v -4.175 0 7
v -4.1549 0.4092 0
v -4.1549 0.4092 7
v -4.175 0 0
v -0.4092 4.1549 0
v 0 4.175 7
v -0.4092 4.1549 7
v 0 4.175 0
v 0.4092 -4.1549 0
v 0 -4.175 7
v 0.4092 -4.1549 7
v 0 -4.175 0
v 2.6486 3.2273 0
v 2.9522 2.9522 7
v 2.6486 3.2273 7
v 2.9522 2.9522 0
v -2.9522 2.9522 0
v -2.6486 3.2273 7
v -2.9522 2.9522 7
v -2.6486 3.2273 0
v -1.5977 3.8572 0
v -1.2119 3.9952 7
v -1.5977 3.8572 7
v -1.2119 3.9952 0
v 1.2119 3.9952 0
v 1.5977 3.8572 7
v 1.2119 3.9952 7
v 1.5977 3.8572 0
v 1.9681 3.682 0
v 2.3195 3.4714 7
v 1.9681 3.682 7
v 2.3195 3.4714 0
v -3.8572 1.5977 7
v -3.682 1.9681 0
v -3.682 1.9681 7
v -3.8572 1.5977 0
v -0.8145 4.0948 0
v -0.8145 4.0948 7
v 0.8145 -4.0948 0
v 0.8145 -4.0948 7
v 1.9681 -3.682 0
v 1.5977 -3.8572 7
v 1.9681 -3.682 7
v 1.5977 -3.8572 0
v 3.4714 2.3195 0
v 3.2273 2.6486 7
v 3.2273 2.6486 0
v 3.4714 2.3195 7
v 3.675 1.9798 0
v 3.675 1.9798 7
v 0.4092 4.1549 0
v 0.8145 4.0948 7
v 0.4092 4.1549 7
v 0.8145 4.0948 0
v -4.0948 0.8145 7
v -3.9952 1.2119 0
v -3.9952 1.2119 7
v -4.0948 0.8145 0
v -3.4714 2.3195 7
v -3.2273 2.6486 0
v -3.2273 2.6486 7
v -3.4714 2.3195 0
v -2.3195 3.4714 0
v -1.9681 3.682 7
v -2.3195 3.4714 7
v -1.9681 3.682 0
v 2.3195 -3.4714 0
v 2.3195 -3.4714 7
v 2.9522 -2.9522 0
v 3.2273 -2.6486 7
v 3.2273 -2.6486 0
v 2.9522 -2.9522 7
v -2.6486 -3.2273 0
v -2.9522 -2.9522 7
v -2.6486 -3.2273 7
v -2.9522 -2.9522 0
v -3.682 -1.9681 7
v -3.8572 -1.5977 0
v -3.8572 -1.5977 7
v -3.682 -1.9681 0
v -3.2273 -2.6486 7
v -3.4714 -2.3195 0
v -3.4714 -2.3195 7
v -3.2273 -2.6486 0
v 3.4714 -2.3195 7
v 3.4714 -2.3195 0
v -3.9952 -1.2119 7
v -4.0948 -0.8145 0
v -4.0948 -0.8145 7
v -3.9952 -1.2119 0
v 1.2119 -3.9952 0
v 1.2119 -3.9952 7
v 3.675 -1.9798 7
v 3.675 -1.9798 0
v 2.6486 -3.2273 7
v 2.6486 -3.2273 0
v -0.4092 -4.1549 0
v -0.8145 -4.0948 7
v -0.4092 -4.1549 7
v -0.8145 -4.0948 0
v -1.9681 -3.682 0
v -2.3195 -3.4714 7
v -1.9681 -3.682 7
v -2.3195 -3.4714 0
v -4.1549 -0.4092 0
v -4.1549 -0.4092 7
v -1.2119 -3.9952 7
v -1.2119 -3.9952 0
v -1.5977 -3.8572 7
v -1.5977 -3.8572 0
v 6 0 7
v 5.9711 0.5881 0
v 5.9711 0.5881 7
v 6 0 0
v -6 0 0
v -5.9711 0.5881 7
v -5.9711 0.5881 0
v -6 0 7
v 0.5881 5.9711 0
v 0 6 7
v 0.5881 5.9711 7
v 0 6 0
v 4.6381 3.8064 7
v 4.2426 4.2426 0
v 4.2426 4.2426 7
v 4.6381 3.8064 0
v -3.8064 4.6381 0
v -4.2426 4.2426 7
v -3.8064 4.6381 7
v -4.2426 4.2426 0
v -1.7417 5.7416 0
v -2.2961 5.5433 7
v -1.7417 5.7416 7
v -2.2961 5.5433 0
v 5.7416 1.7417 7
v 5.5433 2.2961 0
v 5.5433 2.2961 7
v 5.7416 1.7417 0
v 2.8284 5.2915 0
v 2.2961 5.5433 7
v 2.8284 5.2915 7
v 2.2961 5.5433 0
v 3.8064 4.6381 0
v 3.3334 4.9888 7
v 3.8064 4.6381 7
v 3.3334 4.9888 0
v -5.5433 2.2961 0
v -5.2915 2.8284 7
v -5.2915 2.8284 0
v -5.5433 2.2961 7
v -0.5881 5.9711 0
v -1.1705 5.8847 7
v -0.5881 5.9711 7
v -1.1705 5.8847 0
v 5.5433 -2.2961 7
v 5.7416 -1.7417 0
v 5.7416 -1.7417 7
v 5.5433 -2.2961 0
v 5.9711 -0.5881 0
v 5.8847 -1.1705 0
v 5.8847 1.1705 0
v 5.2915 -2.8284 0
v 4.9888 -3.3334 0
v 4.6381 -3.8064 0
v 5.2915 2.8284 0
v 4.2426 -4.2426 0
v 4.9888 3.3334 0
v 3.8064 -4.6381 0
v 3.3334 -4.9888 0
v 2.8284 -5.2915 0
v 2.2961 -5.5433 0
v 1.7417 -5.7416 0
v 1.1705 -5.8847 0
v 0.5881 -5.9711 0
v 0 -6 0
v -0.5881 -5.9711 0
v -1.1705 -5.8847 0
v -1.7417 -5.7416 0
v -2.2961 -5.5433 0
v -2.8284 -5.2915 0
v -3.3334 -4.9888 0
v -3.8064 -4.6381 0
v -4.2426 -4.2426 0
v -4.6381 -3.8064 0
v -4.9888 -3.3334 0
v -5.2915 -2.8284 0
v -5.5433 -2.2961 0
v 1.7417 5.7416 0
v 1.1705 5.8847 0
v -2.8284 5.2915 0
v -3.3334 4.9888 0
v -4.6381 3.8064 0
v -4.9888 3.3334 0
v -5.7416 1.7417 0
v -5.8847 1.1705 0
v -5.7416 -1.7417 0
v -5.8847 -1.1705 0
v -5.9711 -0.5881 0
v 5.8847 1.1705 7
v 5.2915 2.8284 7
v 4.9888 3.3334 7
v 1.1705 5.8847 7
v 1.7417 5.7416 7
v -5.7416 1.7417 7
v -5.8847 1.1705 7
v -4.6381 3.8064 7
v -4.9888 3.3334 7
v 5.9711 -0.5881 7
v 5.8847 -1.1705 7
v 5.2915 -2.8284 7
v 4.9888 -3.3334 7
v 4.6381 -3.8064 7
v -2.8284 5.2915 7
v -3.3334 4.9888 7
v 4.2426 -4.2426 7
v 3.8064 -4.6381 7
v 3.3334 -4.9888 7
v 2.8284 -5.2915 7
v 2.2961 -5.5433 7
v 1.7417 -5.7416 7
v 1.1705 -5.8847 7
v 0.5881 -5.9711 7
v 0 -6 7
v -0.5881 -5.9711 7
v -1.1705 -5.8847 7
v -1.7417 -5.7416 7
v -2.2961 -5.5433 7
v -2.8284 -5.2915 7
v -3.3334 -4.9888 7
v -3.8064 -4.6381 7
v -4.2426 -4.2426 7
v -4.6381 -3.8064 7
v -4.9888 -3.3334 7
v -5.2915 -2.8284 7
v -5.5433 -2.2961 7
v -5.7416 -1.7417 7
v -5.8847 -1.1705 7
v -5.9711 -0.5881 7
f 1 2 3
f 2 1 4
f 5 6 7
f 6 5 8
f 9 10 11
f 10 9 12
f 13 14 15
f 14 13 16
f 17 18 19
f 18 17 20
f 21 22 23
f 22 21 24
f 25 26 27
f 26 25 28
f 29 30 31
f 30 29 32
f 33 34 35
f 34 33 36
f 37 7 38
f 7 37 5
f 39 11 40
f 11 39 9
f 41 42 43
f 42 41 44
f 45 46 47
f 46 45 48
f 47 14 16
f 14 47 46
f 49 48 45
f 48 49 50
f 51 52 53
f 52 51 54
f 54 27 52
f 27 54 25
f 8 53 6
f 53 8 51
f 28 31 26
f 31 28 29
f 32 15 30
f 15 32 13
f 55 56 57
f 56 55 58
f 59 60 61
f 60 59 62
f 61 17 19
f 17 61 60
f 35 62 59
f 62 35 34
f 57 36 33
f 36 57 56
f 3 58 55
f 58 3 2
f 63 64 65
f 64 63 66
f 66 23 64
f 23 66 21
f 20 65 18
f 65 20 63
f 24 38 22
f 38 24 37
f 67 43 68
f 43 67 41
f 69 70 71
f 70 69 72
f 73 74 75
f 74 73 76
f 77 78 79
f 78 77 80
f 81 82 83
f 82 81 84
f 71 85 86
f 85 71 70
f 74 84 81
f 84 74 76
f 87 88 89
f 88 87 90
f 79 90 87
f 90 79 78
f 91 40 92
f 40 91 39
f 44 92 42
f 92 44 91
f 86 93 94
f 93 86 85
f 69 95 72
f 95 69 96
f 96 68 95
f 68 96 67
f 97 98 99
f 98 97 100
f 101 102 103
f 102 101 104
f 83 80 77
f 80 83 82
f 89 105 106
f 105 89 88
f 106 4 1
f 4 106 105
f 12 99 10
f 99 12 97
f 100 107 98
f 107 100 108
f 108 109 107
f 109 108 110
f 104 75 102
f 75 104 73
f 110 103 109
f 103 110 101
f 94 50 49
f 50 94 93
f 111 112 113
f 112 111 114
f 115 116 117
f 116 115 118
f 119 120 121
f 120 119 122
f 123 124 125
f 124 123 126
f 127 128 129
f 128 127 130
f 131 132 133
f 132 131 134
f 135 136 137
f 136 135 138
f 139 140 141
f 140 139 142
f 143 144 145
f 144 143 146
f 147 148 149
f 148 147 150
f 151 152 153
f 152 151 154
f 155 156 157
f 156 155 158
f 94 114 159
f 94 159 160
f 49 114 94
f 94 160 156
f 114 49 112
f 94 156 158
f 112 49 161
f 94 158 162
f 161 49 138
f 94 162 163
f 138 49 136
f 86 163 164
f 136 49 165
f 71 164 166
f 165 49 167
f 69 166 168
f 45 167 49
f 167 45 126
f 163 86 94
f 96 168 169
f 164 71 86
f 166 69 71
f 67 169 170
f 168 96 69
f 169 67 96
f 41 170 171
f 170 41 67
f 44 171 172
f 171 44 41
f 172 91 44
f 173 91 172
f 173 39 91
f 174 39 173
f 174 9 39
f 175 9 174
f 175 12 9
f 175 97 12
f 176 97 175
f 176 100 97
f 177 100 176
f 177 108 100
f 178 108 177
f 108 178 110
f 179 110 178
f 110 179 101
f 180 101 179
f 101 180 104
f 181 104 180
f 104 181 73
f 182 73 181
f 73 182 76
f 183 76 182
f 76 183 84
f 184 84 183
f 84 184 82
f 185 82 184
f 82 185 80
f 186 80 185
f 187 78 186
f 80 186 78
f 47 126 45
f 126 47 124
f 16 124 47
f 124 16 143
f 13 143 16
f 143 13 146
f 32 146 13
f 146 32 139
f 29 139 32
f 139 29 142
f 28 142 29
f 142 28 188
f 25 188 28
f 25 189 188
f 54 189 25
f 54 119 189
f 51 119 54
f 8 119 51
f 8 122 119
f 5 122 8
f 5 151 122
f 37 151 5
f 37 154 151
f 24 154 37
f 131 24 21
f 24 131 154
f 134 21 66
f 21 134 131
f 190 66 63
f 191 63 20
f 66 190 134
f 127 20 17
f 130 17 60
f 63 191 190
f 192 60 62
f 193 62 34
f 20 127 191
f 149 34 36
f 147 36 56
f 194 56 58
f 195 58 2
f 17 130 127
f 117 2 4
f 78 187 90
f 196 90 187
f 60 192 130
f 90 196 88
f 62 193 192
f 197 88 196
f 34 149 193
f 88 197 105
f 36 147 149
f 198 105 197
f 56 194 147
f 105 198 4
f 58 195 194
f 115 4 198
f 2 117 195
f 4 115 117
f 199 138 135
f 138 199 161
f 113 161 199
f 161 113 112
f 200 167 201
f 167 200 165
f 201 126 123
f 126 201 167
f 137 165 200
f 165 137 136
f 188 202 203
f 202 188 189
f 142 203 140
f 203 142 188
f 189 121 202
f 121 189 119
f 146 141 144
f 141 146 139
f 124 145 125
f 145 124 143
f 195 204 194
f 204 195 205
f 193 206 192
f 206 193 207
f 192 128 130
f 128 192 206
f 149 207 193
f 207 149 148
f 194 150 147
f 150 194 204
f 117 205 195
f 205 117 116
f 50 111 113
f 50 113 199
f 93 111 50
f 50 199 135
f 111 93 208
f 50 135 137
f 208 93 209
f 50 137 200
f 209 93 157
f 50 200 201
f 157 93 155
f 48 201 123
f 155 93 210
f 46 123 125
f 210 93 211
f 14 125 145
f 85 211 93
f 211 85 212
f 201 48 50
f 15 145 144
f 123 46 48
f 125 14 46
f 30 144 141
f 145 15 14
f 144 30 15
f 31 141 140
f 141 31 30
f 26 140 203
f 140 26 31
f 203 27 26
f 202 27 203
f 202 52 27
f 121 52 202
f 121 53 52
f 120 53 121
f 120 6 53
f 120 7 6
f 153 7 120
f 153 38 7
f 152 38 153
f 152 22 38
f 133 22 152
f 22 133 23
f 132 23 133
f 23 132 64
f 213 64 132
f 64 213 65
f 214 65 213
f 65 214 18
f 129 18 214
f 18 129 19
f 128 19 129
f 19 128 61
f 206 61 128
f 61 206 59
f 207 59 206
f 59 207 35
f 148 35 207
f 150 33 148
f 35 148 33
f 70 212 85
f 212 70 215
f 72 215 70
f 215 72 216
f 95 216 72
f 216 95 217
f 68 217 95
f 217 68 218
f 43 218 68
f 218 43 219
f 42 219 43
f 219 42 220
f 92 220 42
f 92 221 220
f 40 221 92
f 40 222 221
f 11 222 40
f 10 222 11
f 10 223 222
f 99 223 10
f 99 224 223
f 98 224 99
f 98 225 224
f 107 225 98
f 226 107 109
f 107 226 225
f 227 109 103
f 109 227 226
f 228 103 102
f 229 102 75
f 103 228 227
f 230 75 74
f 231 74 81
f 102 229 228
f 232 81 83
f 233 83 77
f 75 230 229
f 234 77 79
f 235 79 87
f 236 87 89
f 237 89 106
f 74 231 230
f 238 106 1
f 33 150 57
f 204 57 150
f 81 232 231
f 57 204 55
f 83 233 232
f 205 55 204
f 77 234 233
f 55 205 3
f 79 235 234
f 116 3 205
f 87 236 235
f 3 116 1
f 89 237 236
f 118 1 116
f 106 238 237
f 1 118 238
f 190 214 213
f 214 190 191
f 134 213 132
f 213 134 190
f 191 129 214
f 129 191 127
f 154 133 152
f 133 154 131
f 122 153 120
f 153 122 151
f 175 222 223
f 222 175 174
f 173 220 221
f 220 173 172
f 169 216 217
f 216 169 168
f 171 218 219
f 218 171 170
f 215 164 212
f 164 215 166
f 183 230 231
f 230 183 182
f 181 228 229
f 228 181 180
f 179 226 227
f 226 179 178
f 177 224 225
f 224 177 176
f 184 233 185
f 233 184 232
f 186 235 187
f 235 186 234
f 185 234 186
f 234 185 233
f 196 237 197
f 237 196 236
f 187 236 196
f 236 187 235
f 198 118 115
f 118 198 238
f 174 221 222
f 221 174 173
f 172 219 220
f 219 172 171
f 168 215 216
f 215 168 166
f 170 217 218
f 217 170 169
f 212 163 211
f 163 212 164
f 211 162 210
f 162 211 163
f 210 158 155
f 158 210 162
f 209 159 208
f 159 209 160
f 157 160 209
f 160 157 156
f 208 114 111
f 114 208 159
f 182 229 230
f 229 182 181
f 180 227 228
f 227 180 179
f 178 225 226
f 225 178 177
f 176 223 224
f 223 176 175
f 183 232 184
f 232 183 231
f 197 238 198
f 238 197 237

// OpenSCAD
// Gen-DW — gap sleeve: rigid spacer on the shaft BETWEEN the two rotor carriers (passes through the stator
// hole). Length = m2m, so it sets the magnet gap and carries the full magnet pull. Print x1, upright.
include <parameters.scad>;
$fn = 64;
// D-flat keyed bore: flat faces +X (angle 0 = magnet pocket 0 = index notch)
module dflat_bore(h) {
    intersection() {
        cylinder(d=shaft_bore, h=h);
        translate([-shaft_bore, -shaft_bore, 0]) cube([shaft_bore + dflat_x, 2*shaft_bore, h]);
    }
}

difference() {
    cylinder(d=sleeve_od, h=m2m);
    translate([0, 0, -0.1]) dflat_bore(m2m + 0.2);
}
